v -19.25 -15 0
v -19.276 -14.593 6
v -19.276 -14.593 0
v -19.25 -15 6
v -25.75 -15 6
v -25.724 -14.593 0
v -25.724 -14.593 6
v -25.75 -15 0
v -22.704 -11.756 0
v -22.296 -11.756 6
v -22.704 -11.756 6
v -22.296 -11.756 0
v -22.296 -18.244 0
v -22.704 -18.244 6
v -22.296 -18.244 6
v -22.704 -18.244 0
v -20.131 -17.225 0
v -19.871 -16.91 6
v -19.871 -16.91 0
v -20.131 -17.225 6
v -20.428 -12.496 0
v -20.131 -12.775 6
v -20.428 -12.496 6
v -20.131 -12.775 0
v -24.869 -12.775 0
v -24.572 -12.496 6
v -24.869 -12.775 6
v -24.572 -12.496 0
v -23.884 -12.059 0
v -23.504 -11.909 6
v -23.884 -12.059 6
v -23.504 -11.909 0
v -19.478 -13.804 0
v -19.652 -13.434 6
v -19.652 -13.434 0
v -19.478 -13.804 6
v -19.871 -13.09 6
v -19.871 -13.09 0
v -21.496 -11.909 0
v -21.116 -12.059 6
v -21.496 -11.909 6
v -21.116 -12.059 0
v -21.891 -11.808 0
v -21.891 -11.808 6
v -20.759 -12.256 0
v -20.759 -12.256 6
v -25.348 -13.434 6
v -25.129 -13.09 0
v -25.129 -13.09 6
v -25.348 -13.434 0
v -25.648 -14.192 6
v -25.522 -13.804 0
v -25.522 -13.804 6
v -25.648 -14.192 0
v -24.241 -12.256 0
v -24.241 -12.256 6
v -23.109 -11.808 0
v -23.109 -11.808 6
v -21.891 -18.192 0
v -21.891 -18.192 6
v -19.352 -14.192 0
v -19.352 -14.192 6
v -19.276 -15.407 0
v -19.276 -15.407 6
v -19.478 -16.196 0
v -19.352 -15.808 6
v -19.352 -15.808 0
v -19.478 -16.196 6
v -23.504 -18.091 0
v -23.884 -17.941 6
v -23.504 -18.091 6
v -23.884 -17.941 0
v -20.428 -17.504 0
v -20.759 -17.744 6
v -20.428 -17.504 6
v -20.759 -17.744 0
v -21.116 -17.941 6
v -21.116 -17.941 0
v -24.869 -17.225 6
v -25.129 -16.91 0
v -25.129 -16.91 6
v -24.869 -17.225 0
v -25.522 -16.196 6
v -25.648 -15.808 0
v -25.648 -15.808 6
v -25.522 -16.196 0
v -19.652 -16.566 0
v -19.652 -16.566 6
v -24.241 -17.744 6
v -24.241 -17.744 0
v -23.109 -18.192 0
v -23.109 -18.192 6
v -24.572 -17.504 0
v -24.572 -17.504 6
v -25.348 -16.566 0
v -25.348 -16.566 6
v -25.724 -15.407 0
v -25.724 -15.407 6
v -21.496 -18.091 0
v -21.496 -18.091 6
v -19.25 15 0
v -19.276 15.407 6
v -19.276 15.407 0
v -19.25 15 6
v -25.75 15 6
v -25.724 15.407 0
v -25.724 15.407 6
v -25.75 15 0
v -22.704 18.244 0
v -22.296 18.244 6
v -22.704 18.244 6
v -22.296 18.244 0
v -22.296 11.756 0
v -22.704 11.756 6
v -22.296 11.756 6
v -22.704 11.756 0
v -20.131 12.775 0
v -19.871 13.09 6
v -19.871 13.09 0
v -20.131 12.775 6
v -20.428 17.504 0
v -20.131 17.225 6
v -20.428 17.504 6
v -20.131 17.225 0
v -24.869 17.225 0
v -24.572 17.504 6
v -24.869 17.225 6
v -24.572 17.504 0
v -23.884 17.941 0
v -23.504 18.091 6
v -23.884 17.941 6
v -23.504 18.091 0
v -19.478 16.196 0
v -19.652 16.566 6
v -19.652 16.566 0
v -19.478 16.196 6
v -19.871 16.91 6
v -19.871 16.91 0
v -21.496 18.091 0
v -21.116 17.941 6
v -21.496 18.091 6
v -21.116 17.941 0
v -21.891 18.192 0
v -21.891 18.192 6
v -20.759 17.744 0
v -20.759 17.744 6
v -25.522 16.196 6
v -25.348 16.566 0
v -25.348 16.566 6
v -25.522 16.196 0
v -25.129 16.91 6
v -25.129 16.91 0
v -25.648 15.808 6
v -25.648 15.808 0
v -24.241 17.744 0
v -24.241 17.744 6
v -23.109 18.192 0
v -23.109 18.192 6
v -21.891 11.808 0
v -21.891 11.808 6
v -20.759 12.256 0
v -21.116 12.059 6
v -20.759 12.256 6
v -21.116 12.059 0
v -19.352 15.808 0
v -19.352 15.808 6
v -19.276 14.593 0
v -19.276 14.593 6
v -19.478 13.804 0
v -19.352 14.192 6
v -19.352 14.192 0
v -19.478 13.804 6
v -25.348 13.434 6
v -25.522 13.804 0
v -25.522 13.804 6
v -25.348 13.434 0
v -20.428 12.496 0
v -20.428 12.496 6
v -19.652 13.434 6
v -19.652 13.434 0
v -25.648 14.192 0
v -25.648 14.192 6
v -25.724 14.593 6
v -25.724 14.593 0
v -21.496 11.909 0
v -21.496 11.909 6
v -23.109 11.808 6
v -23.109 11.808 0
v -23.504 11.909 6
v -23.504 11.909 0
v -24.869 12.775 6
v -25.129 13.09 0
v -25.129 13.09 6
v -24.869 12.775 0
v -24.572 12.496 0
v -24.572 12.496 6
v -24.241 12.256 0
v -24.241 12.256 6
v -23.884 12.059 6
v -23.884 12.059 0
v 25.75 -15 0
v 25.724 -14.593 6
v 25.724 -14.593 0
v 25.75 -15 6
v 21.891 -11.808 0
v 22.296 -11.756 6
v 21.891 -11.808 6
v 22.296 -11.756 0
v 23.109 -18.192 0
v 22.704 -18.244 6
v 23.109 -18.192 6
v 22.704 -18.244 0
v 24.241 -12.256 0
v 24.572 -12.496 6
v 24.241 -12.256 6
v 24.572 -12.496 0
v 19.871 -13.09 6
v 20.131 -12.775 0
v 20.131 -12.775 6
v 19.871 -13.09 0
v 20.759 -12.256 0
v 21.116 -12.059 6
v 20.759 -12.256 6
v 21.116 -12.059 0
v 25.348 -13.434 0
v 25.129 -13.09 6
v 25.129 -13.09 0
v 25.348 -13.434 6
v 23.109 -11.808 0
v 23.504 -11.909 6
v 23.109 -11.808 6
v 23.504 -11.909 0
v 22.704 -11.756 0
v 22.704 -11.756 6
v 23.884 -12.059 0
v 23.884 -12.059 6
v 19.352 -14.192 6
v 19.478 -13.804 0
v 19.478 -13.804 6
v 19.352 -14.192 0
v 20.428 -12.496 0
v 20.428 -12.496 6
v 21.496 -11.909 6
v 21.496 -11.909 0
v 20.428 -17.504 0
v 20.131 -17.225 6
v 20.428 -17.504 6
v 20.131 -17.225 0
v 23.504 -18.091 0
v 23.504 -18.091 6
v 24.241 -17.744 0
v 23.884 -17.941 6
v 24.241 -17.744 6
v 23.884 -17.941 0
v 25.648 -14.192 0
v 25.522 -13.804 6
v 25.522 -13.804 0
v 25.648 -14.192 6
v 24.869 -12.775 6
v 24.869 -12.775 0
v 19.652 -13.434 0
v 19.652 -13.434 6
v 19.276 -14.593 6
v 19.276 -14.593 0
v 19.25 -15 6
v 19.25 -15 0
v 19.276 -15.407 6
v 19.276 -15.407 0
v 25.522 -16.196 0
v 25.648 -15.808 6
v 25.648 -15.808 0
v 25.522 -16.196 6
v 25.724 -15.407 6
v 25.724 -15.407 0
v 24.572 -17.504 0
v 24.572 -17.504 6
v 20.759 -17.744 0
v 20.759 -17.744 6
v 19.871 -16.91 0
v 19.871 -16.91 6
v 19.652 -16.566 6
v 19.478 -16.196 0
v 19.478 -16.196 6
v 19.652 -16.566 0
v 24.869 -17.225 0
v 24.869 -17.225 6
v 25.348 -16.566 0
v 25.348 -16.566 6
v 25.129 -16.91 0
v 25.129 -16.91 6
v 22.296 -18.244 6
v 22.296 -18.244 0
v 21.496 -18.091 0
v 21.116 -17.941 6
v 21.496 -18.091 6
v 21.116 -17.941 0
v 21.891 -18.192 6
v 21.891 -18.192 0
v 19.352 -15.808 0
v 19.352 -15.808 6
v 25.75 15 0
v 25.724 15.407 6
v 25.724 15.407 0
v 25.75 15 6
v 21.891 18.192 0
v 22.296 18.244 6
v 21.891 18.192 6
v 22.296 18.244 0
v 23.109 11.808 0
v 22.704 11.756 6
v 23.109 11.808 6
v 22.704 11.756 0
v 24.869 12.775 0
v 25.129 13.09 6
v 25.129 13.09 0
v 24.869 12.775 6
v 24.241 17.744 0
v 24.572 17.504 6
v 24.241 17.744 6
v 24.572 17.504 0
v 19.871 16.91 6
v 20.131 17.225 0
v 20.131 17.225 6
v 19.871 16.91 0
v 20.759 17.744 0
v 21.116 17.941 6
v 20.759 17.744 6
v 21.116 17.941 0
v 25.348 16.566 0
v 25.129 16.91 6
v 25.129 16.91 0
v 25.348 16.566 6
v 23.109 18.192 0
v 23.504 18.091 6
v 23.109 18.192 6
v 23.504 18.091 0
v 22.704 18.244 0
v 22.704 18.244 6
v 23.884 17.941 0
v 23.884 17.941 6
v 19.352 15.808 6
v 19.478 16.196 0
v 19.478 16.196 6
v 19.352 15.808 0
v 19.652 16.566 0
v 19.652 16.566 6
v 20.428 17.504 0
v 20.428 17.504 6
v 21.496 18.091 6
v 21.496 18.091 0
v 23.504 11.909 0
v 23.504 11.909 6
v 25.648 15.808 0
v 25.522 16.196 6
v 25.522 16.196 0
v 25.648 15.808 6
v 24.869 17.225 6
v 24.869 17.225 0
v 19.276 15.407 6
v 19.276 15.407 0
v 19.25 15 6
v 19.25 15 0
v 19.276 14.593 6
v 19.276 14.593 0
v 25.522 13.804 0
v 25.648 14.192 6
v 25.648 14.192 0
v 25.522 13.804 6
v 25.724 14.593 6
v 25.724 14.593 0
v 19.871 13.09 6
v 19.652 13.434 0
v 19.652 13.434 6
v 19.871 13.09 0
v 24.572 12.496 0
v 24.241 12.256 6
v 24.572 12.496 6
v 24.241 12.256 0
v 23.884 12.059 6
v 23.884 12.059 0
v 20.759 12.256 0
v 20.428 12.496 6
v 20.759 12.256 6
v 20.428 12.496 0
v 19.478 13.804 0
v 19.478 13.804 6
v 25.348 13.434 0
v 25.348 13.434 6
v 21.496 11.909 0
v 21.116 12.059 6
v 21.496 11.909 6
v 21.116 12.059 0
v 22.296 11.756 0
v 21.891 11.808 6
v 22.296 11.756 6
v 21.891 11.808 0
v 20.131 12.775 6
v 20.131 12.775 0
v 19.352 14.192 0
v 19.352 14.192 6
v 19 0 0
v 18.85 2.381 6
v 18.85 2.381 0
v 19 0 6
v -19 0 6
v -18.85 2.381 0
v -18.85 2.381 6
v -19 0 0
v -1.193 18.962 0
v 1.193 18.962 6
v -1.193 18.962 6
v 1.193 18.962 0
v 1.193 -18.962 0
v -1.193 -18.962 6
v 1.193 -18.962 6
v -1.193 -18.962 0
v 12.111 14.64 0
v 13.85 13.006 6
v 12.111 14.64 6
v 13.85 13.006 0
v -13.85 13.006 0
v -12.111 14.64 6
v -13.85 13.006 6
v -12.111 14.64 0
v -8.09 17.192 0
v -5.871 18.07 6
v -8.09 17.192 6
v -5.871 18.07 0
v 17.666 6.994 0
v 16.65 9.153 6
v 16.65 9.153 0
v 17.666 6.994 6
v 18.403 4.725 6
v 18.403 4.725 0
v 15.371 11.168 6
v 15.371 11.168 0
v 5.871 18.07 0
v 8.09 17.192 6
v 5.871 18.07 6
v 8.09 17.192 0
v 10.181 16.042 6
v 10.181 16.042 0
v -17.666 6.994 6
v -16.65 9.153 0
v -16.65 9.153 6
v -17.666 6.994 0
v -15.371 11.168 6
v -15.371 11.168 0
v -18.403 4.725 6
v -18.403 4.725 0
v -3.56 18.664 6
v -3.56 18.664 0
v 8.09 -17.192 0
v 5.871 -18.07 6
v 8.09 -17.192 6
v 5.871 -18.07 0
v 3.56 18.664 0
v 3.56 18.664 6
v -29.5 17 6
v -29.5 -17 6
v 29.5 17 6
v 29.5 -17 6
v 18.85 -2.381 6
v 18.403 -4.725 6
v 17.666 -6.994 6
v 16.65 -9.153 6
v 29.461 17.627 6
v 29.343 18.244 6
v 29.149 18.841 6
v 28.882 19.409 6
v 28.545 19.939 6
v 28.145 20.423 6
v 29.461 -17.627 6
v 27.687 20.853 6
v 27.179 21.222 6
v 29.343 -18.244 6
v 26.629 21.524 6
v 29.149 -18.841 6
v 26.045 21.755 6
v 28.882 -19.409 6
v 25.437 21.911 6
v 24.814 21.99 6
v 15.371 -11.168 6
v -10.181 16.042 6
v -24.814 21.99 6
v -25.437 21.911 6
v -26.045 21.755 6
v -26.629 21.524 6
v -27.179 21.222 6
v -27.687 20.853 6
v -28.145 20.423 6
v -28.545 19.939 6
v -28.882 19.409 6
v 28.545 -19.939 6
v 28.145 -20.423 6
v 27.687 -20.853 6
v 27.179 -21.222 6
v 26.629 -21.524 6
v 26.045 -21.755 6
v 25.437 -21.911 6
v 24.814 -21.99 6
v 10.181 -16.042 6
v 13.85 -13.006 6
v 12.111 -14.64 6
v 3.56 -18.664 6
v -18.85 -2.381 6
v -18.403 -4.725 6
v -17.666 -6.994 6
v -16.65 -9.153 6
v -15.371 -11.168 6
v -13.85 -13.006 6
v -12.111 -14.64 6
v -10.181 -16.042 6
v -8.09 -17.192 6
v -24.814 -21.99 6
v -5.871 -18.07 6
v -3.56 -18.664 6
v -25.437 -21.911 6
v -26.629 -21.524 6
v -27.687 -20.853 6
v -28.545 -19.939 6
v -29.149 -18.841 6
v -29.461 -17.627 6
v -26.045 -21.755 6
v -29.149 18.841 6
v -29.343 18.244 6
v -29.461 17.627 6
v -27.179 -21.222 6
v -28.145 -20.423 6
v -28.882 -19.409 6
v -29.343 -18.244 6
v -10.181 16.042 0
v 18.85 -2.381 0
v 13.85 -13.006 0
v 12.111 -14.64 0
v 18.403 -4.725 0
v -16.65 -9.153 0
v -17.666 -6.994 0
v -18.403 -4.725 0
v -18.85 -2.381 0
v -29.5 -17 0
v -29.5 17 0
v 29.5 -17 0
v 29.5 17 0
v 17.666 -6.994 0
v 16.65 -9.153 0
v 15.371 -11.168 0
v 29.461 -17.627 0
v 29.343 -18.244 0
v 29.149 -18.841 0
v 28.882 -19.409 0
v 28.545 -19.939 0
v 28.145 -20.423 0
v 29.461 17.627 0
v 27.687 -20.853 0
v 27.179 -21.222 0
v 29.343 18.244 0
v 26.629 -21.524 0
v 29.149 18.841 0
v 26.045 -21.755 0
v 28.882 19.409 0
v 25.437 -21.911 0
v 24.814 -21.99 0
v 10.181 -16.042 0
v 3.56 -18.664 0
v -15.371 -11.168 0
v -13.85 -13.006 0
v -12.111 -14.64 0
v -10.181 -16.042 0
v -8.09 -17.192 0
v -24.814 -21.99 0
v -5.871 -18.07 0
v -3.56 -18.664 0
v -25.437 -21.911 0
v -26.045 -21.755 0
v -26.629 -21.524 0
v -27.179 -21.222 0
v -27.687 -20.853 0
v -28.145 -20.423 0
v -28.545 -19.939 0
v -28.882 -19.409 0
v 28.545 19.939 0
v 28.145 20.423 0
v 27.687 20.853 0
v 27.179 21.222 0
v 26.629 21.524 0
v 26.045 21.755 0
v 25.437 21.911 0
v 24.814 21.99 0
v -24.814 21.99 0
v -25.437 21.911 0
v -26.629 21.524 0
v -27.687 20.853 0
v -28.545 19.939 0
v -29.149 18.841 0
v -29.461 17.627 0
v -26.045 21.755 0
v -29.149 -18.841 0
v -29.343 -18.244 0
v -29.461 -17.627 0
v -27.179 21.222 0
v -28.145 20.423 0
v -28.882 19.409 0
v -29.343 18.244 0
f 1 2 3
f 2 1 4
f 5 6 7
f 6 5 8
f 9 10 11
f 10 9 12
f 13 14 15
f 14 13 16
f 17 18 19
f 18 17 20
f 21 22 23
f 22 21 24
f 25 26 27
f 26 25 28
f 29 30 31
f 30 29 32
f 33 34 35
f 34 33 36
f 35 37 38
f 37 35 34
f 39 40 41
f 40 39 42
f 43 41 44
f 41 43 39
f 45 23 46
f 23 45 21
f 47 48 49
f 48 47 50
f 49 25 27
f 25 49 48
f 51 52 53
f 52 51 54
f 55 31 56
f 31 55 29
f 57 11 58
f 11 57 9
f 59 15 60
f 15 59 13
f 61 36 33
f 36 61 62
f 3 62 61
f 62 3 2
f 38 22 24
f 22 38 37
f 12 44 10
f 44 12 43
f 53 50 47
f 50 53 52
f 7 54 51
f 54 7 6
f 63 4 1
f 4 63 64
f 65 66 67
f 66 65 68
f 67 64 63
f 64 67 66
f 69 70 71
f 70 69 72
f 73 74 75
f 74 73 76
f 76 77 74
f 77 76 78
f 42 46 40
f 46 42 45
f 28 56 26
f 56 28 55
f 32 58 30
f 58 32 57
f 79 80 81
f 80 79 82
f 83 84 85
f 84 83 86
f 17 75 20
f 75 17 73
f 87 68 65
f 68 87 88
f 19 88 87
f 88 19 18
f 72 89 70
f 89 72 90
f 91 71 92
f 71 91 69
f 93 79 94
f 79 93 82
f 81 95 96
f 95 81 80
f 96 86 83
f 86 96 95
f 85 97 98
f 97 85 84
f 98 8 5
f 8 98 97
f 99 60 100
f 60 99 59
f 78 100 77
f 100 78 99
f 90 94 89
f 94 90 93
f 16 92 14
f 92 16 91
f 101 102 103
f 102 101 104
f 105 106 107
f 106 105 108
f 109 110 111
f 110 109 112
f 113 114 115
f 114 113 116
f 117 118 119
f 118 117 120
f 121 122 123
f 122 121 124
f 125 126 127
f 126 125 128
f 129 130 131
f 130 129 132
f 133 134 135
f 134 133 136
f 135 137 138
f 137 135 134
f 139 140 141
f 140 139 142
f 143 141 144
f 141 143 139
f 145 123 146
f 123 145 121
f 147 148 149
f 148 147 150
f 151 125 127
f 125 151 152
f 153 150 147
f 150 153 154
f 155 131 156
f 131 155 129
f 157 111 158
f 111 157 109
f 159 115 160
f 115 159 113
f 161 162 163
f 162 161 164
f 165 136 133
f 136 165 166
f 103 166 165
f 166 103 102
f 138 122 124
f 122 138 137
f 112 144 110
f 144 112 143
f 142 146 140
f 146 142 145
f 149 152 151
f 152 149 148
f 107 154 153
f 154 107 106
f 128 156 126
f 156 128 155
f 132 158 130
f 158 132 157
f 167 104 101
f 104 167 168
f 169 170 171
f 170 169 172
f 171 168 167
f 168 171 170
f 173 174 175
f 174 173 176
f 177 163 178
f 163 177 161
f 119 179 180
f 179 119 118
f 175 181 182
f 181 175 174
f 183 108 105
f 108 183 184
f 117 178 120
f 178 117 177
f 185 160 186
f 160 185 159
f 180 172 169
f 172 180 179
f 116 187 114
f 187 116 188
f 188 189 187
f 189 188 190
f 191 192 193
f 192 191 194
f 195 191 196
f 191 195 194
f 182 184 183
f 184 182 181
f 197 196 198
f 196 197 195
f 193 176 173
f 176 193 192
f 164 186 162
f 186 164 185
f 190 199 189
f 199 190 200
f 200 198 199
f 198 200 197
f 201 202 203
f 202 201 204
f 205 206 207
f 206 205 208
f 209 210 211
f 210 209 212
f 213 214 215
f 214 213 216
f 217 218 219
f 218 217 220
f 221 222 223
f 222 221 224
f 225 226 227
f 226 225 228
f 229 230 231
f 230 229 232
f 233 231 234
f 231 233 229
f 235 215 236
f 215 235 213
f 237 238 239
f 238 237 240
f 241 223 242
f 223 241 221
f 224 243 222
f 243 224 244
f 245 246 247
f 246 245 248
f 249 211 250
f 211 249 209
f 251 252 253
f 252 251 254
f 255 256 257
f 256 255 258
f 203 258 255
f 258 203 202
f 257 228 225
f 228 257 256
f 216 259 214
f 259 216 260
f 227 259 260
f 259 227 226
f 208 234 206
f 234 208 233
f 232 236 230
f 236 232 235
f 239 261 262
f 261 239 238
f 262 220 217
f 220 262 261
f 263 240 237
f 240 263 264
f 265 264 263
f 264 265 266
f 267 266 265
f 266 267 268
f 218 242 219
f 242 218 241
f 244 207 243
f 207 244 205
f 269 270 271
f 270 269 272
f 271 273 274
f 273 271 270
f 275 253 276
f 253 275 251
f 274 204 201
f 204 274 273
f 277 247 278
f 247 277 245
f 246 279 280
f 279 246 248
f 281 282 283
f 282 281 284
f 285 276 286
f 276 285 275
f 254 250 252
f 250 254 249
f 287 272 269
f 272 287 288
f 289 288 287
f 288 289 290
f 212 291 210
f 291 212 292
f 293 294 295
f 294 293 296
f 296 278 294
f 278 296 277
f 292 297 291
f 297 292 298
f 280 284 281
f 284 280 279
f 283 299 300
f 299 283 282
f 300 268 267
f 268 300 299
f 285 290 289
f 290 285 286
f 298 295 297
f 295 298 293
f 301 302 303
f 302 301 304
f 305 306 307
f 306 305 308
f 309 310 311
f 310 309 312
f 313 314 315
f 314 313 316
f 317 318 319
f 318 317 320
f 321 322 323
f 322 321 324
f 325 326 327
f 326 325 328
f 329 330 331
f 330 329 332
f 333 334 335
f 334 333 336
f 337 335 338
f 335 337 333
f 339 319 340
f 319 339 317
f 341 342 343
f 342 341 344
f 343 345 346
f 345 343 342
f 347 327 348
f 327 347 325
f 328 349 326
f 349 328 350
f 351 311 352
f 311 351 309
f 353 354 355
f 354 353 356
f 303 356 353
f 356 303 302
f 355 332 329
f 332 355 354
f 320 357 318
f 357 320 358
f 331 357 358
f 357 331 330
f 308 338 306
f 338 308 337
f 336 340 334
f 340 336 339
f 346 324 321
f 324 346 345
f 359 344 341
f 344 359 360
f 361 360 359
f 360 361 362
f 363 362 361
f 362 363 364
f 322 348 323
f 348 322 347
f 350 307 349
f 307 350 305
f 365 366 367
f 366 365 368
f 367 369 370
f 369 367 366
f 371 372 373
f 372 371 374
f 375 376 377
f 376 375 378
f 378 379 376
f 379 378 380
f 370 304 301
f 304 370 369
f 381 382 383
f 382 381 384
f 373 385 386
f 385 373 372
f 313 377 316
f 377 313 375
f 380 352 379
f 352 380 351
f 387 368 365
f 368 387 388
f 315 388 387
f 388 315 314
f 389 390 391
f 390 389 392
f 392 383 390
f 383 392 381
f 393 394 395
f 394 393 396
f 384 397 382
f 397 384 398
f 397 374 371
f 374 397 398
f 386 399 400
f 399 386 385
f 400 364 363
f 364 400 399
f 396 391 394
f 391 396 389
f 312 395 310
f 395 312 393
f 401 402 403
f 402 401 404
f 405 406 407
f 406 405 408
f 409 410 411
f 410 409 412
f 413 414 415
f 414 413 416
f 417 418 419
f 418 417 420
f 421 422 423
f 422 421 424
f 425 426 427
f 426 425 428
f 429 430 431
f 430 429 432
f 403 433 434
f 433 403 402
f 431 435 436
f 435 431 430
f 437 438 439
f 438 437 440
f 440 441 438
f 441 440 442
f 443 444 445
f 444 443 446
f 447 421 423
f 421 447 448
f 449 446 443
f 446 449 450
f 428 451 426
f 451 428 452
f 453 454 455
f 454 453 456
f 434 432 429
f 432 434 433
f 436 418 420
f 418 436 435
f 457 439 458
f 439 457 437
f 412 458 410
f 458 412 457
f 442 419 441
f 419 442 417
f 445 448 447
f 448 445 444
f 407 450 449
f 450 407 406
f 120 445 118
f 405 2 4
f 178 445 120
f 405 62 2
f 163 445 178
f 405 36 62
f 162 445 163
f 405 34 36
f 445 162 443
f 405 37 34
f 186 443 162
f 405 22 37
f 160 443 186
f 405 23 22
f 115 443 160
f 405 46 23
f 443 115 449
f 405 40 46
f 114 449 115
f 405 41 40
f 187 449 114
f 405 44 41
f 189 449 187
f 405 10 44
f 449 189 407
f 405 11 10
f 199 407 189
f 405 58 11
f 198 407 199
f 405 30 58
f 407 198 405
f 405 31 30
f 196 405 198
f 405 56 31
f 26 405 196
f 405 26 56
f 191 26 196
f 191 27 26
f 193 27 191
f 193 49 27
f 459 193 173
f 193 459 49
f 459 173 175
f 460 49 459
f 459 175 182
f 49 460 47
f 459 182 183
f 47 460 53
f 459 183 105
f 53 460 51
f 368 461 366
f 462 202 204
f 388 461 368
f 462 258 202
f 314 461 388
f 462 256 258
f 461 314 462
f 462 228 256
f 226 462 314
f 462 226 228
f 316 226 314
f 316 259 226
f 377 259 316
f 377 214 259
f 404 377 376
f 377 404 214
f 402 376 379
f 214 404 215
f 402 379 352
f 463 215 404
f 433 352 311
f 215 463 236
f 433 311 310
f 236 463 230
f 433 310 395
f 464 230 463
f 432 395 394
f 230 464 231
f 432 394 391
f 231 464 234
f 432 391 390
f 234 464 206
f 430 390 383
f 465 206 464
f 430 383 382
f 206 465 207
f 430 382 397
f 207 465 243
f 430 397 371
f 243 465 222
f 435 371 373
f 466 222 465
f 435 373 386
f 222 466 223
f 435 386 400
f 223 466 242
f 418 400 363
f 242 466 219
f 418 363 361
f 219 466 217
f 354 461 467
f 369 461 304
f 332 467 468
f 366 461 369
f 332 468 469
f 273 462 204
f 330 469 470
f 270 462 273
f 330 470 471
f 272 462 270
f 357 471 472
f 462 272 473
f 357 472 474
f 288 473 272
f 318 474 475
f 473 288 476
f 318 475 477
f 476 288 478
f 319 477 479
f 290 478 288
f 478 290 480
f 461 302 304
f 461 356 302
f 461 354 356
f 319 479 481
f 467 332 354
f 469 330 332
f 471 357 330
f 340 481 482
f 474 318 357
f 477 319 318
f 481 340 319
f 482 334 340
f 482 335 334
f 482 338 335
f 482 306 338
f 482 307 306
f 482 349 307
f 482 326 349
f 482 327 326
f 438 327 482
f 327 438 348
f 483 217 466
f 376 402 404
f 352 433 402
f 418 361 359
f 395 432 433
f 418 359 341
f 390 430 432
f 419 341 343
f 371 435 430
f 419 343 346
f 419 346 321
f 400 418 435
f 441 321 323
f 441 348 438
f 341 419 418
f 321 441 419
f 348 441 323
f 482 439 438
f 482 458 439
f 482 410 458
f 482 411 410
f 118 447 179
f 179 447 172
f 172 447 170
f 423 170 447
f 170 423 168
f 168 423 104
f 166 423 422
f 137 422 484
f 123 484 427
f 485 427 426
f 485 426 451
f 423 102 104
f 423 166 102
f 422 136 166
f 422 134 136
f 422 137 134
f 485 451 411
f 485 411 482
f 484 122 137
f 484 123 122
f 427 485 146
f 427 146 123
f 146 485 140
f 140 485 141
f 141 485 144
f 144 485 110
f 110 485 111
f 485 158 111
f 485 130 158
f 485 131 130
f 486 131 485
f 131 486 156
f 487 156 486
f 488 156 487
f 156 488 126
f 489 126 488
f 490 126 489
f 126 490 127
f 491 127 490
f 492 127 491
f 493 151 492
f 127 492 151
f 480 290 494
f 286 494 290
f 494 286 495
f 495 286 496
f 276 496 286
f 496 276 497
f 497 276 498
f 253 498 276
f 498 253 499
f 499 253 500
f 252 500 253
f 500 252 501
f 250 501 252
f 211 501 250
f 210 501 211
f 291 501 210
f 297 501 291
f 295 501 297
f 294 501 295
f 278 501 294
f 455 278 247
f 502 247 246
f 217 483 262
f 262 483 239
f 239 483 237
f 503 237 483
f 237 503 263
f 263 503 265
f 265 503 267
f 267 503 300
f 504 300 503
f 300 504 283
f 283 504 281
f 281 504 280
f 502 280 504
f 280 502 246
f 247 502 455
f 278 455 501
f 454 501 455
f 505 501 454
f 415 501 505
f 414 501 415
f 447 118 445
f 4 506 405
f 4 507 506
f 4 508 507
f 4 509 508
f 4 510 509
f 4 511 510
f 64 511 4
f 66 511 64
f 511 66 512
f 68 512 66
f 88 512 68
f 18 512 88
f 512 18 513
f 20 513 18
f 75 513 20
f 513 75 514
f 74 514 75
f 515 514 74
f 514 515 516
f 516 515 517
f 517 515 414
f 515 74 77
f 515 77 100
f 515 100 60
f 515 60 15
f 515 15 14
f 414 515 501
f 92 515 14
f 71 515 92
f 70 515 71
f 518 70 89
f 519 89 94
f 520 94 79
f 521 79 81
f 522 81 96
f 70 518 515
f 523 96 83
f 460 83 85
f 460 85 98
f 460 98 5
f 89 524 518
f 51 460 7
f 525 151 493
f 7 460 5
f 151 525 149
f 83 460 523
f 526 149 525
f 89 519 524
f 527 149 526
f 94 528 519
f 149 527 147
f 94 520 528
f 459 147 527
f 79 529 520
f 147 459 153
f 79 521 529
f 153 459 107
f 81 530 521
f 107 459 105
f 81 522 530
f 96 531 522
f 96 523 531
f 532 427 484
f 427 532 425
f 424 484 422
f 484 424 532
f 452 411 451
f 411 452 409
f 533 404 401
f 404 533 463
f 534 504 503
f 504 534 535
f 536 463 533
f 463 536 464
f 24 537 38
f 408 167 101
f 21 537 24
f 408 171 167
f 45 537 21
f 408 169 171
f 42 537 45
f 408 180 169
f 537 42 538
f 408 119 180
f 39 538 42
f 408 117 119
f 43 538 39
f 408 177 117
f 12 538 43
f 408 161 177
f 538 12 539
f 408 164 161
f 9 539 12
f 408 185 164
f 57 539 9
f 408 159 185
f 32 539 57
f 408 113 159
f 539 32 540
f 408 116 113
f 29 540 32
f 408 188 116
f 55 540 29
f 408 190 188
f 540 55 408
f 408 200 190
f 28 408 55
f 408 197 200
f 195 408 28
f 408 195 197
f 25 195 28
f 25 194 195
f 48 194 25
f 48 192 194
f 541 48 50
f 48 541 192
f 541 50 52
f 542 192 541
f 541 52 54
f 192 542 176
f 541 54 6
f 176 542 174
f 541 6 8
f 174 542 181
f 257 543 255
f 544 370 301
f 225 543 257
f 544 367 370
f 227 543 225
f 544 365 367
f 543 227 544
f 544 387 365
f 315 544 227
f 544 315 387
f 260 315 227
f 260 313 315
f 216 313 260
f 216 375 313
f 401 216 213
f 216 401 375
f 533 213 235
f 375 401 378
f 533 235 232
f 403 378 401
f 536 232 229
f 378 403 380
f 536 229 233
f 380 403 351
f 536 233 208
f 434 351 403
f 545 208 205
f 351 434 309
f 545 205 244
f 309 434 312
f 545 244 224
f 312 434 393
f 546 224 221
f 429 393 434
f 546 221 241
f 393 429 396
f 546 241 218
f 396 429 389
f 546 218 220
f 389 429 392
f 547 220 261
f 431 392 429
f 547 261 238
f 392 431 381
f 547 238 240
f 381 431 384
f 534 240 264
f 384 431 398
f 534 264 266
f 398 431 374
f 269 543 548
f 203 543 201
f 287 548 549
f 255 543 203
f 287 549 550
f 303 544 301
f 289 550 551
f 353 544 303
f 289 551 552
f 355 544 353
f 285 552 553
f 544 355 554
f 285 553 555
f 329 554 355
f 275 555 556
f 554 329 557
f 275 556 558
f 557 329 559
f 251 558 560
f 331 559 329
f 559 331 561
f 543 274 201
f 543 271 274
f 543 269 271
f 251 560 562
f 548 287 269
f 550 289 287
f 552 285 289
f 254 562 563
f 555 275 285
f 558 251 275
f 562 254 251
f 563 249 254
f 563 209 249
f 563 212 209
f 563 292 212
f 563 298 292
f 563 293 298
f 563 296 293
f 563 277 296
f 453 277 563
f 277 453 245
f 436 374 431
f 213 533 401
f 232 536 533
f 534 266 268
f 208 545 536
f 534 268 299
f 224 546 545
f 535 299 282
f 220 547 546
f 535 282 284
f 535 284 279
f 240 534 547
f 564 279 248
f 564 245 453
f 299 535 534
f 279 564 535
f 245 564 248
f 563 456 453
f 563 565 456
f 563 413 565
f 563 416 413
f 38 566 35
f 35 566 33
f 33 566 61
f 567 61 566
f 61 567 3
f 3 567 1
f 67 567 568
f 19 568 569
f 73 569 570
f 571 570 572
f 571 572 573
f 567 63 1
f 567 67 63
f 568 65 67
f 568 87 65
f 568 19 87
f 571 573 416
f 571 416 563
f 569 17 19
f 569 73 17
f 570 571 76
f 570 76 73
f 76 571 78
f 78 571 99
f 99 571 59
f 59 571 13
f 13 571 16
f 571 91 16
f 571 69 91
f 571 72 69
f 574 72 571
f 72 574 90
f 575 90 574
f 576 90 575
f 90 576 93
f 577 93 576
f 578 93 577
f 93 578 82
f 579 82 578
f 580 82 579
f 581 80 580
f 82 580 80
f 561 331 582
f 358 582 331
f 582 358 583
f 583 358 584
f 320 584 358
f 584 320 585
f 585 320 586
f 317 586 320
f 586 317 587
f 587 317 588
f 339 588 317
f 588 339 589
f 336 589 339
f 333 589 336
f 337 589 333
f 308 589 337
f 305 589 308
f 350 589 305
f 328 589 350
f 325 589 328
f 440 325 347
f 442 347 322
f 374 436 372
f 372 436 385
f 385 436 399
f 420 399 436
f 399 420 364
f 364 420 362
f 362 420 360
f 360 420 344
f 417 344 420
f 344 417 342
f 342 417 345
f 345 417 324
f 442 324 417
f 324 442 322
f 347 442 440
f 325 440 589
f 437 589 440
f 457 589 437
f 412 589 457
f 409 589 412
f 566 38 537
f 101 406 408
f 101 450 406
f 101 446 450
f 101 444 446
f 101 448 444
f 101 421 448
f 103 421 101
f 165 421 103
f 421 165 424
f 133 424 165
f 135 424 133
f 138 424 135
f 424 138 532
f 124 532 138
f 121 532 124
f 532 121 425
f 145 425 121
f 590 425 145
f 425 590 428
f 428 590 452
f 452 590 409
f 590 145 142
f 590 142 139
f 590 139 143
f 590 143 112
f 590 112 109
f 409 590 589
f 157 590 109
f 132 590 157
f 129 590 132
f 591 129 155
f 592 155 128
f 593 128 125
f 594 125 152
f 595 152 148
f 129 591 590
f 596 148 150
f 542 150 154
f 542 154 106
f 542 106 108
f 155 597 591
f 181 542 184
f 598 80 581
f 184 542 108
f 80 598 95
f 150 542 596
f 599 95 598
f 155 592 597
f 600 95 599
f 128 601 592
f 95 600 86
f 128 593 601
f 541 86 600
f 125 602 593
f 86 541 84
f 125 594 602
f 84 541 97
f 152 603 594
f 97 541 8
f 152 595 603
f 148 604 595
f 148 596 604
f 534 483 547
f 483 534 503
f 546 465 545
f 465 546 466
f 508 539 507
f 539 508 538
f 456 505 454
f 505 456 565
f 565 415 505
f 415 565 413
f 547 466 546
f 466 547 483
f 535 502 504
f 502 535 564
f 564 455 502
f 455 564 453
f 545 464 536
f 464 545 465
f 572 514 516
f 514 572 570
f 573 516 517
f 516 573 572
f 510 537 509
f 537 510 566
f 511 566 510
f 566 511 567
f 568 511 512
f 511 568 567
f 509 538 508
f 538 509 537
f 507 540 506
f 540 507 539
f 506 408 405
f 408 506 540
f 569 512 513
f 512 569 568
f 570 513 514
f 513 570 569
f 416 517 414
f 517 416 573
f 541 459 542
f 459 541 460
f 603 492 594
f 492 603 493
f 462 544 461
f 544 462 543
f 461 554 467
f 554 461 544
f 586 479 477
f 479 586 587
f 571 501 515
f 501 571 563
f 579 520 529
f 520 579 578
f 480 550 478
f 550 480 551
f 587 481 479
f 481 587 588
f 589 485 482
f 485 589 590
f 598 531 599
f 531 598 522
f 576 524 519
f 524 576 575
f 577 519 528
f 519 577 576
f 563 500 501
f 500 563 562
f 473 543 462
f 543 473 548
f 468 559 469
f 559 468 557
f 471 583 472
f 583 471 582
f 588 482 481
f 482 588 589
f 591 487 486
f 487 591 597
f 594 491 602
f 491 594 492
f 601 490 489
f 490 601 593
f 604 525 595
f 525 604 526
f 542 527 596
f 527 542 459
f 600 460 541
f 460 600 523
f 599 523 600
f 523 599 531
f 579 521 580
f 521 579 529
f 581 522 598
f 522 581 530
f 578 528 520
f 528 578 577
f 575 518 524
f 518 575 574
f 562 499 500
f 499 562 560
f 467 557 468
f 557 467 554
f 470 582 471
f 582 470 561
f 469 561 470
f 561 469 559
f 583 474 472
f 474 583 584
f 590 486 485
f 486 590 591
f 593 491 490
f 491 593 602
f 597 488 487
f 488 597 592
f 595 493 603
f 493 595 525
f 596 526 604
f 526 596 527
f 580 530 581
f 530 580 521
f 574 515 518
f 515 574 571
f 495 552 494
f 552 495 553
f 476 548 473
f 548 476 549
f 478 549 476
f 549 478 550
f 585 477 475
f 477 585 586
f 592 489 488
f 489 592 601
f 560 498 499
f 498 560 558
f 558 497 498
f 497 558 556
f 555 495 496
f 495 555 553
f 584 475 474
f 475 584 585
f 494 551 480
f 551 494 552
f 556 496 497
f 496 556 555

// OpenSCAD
$fn = 50;


difference() {
	union() {
		hull() {
			translate(v = [-24.5000000000, 17.0000000000, 0]) {
				cylinder(h = 6, r = 5);
			}
			translate(v = [24.5000000000, 17.0000000000, 0]) {
				cylinder(h = 6, r = 5);
			}
			translate(v = [-24.5000000000, -17.0000000000, 0]) {
				cylinder(h = 6, r = 5);
			}
			translate(v = [24.5000000000, -17.0000000000, 0]) {
				cylinder(h = 6, r = 5);
			}
		}
	}
	union() {
		#translate(v = [-22.5000000000, -15.0000000000, -100.0000000000]) {
			cylinder(h = 200, r = 3.2500000000);
		}
		#translate(v = [-22.5000000000, 15.0000000000, -100.0000000000]) {
			cylinder(h = 200, r = 3.2500000000);
		}
		#translate(v = [22.5000000000, -15.0000000000, -100.0000000000]) {
			cylinder(h = 200, r = 3.2500000000);
		}
		#translate(v = [22.5000000000, 15.0000000000, -100.0000000000]) {
			cylinder(h = 200, r = 3.2500000000);
		}
		#cylinder(h = 6, r = 19.0000000000);
	}
}
